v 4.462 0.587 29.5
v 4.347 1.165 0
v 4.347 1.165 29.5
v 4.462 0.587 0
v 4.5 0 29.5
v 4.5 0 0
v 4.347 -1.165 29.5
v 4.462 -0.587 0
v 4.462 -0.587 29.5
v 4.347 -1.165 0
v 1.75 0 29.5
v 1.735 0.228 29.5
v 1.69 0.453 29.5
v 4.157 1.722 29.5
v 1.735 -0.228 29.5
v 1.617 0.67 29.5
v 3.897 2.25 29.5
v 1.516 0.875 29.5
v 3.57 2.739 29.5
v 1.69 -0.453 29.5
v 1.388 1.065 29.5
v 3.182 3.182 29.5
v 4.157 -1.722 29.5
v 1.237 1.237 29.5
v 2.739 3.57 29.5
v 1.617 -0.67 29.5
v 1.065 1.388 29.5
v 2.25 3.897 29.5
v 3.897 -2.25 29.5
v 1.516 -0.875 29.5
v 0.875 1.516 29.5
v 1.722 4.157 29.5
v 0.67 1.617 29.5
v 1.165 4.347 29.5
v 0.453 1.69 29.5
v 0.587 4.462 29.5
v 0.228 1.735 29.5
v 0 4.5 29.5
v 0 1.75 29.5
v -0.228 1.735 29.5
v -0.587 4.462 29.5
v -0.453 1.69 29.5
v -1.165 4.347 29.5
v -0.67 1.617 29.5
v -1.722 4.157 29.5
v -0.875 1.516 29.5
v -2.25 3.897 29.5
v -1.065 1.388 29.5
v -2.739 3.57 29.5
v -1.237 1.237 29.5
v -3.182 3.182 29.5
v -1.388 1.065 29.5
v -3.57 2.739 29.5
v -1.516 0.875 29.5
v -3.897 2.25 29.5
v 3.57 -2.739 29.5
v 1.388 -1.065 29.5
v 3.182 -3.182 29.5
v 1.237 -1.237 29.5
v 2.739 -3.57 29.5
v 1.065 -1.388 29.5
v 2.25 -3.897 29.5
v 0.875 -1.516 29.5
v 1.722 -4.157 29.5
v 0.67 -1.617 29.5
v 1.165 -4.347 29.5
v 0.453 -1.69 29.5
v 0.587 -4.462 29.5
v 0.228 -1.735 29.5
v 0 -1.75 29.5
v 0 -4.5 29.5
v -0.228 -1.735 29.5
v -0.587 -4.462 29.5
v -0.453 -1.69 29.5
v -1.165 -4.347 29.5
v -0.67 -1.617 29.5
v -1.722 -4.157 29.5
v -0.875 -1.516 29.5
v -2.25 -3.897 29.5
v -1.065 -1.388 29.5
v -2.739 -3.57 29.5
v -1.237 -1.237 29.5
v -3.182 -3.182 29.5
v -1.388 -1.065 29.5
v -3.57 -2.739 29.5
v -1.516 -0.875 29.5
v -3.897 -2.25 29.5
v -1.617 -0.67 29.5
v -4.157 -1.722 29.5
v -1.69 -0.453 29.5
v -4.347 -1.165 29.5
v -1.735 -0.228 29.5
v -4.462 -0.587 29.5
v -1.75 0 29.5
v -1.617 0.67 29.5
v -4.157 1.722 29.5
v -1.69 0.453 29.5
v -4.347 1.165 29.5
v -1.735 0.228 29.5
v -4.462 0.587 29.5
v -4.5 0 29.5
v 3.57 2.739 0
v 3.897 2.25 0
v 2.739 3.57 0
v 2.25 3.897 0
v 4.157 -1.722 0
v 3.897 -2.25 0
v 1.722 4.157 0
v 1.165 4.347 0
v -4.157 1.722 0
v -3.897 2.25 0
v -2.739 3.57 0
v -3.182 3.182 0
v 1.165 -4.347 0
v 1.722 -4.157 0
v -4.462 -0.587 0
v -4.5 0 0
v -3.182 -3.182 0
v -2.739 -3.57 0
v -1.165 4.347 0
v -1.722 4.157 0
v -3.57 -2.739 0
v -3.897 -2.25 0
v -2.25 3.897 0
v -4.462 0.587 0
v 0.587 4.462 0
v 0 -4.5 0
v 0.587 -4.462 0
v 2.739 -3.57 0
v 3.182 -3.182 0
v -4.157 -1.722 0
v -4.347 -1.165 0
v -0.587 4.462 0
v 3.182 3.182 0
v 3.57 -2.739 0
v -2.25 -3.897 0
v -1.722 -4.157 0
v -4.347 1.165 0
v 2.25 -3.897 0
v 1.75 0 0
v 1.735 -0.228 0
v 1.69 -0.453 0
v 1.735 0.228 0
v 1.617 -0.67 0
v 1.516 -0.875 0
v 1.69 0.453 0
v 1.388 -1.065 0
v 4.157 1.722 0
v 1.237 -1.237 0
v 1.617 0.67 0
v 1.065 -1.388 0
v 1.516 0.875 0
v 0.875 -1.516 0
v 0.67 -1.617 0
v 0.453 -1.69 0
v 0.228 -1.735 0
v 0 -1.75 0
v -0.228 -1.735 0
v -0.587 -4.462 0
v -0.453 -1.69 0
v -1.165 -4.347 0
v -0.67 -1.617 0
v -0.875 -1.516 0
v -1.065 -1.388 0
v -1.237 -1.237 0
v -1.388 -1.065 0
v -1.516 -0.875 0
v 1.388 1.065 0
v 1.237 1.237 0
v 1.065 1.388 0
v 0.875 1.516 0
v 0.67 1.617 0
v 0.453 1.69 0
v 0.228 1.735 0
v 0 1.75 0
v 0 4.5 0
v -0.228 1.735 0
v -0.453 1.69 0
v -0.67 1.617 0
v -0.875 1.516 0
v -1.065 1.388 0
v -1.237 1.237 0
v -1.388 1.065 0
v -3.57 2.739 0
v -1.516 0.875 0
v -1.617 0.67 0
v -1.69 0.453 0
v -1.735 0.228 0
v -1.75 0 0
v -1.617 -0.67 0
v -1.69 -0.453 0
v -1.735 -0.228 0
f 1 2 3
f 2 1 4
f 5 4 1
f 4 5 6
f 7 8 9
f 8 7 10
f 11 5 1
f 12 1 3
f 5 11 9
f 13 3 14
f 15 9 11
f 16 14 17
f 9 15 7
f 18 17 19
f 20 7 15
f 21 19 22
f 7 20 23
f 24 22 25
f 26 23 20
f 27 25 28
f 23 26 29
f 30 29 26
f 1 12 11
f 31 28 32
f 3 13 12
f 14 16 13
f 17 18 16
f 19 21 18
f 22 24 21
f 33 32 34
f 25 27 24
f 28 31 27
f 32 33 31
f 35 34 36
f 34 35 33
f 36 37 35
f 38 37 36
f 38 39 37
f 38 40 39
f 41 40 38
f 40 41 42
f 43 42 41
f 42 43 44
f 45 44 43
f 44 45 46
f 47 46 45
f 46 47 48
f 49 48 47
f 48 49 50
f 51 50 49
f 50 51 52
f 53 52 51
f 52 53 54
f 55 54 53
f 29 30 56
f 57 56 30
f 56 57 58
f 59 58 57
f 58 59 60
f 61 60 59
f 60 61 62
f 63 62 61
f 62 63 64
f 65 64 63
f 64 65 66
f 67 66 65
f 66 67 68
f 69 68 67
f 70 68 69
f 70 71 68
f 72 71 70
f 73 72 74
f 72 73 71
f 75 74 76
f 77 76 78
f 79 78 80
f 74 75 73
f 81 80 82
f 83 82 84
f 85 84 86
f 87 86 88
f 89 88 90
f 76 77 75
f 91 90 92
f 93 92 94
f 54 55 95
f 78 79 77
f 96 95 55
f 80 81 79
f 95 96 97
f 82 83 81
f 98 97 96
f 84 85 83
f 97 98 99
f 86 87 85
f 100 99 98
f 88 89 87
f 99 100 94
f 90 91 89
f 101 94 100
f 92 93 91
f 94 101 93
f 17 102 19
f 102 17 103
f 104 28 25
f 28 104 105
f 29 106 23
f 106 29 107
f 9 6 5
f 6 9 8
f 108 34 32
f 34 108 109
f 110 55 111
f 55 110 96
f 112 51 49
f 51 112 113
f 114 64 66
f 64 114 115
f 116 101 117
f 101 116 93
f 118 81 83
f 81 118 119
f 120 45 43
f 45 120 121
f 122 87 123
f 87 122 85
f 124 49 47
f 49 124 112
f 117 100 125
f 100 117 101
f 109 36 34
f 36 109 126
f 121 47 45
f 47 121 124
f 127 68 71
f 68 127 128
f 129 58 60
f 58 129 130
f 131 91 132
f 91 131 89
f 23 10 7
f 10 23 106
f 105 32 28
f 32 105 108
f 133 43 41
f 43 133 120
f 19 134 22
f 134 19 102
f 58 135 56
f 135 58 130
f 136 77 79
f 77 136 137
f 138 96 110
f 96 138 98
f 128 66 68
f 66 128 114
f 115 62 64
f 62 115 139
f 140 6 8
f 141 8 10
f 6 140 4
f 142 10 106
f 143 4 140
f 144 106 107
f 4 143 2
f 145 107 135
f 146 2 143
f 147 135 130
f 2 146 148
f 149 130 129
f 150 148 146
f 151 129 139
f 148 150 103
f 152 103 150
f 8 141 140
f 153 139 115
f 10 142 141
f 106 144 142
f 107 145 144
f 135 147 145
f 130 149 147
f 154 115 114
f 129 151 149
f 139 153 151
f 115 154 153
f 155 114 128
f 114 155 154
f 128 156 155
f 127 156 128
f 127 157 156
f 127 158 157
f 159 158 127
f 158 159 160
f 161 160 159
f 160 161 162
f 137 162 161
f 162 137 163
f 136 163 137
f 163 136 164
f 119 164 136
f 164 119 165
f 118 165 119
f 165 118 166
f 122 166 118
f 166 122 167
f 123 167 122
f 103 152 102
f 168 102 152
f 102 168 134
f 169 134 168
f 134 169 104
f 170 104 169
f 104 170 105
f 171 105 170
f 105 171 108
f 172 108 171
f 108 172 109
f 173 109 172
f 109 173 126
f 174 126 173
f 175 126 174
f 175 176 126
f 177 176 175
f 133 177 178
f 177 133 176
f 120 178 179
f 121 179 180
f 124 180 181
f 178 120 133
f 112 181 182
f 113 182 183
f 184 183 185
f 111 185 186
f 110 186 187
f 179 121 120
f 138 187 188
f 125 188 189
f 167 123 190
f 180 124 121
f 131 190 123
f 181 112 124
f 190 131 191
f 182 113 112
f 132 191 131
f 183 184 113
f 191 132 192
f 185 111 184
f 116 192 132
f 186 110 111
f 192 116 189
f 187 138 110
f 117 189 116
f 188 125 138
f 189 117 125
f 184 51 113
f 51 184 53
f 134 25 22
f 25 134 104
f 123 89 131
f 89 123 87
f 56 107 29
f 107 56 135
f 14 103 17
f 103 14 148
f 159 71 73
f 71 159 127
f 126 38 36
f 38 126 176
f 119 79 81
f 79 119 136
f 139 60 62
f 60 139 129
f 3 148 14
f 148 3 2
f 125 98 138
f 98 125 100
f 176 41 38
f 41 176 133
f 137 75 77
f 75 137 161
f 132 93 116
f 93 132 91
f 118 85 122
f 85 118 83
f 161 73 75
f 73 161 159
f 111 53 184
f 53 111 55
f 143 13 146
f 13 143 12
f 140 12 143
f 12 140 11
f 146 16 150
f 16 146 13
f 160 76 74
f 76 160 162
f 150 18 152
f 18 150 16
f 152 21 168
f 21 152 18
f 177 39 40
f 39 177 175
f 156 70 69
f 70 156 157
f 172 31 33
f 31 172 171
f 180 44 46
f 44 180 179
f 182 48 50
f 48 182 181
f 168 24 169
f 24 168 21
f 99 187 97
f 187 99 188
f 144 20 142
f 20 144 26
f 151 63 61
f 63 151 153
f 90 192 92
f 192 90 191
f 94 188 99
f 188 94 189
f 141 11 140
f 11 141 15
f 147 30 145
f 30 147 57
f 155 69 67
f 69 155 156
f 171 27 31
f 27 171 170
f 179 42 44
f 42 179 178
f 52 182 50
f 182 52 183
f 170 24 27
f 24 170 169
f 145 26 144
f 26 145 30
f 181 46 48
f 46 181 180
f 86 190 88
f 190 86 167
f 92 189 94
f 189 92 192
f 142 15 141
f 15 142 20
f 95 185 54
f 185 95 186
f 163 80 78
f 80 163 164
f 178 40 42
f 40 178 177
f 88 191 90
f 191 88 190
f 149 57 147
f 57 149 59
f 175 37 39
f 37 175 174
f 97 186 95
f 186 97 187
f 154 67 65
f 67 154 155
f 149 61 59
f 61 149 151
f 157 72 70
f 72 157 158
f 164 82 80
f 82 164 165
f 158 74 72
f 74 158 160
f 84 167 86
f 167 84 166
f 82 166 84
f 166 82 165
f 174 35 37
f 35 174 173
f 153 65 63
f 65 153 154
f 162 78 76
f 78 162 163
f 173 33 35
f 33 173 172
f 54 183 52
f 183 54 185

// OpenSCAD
// Gen-DE — frame standoff tube between stator and an endbell, on each M3 frame rod (outside rotor OD).
// Print x4. Height = frame_standoff_h (rotor + steel + hub + collar + running clearance).
include <parameters.scad>;
$fn = 48;
difference() {
    cylinder(d=standoff_od, h=frame_standoff_h);
    translate([0, 0, -0.1]) cylinder(d=m3_clear, h=frame_standoff_h + 0.2);
}
